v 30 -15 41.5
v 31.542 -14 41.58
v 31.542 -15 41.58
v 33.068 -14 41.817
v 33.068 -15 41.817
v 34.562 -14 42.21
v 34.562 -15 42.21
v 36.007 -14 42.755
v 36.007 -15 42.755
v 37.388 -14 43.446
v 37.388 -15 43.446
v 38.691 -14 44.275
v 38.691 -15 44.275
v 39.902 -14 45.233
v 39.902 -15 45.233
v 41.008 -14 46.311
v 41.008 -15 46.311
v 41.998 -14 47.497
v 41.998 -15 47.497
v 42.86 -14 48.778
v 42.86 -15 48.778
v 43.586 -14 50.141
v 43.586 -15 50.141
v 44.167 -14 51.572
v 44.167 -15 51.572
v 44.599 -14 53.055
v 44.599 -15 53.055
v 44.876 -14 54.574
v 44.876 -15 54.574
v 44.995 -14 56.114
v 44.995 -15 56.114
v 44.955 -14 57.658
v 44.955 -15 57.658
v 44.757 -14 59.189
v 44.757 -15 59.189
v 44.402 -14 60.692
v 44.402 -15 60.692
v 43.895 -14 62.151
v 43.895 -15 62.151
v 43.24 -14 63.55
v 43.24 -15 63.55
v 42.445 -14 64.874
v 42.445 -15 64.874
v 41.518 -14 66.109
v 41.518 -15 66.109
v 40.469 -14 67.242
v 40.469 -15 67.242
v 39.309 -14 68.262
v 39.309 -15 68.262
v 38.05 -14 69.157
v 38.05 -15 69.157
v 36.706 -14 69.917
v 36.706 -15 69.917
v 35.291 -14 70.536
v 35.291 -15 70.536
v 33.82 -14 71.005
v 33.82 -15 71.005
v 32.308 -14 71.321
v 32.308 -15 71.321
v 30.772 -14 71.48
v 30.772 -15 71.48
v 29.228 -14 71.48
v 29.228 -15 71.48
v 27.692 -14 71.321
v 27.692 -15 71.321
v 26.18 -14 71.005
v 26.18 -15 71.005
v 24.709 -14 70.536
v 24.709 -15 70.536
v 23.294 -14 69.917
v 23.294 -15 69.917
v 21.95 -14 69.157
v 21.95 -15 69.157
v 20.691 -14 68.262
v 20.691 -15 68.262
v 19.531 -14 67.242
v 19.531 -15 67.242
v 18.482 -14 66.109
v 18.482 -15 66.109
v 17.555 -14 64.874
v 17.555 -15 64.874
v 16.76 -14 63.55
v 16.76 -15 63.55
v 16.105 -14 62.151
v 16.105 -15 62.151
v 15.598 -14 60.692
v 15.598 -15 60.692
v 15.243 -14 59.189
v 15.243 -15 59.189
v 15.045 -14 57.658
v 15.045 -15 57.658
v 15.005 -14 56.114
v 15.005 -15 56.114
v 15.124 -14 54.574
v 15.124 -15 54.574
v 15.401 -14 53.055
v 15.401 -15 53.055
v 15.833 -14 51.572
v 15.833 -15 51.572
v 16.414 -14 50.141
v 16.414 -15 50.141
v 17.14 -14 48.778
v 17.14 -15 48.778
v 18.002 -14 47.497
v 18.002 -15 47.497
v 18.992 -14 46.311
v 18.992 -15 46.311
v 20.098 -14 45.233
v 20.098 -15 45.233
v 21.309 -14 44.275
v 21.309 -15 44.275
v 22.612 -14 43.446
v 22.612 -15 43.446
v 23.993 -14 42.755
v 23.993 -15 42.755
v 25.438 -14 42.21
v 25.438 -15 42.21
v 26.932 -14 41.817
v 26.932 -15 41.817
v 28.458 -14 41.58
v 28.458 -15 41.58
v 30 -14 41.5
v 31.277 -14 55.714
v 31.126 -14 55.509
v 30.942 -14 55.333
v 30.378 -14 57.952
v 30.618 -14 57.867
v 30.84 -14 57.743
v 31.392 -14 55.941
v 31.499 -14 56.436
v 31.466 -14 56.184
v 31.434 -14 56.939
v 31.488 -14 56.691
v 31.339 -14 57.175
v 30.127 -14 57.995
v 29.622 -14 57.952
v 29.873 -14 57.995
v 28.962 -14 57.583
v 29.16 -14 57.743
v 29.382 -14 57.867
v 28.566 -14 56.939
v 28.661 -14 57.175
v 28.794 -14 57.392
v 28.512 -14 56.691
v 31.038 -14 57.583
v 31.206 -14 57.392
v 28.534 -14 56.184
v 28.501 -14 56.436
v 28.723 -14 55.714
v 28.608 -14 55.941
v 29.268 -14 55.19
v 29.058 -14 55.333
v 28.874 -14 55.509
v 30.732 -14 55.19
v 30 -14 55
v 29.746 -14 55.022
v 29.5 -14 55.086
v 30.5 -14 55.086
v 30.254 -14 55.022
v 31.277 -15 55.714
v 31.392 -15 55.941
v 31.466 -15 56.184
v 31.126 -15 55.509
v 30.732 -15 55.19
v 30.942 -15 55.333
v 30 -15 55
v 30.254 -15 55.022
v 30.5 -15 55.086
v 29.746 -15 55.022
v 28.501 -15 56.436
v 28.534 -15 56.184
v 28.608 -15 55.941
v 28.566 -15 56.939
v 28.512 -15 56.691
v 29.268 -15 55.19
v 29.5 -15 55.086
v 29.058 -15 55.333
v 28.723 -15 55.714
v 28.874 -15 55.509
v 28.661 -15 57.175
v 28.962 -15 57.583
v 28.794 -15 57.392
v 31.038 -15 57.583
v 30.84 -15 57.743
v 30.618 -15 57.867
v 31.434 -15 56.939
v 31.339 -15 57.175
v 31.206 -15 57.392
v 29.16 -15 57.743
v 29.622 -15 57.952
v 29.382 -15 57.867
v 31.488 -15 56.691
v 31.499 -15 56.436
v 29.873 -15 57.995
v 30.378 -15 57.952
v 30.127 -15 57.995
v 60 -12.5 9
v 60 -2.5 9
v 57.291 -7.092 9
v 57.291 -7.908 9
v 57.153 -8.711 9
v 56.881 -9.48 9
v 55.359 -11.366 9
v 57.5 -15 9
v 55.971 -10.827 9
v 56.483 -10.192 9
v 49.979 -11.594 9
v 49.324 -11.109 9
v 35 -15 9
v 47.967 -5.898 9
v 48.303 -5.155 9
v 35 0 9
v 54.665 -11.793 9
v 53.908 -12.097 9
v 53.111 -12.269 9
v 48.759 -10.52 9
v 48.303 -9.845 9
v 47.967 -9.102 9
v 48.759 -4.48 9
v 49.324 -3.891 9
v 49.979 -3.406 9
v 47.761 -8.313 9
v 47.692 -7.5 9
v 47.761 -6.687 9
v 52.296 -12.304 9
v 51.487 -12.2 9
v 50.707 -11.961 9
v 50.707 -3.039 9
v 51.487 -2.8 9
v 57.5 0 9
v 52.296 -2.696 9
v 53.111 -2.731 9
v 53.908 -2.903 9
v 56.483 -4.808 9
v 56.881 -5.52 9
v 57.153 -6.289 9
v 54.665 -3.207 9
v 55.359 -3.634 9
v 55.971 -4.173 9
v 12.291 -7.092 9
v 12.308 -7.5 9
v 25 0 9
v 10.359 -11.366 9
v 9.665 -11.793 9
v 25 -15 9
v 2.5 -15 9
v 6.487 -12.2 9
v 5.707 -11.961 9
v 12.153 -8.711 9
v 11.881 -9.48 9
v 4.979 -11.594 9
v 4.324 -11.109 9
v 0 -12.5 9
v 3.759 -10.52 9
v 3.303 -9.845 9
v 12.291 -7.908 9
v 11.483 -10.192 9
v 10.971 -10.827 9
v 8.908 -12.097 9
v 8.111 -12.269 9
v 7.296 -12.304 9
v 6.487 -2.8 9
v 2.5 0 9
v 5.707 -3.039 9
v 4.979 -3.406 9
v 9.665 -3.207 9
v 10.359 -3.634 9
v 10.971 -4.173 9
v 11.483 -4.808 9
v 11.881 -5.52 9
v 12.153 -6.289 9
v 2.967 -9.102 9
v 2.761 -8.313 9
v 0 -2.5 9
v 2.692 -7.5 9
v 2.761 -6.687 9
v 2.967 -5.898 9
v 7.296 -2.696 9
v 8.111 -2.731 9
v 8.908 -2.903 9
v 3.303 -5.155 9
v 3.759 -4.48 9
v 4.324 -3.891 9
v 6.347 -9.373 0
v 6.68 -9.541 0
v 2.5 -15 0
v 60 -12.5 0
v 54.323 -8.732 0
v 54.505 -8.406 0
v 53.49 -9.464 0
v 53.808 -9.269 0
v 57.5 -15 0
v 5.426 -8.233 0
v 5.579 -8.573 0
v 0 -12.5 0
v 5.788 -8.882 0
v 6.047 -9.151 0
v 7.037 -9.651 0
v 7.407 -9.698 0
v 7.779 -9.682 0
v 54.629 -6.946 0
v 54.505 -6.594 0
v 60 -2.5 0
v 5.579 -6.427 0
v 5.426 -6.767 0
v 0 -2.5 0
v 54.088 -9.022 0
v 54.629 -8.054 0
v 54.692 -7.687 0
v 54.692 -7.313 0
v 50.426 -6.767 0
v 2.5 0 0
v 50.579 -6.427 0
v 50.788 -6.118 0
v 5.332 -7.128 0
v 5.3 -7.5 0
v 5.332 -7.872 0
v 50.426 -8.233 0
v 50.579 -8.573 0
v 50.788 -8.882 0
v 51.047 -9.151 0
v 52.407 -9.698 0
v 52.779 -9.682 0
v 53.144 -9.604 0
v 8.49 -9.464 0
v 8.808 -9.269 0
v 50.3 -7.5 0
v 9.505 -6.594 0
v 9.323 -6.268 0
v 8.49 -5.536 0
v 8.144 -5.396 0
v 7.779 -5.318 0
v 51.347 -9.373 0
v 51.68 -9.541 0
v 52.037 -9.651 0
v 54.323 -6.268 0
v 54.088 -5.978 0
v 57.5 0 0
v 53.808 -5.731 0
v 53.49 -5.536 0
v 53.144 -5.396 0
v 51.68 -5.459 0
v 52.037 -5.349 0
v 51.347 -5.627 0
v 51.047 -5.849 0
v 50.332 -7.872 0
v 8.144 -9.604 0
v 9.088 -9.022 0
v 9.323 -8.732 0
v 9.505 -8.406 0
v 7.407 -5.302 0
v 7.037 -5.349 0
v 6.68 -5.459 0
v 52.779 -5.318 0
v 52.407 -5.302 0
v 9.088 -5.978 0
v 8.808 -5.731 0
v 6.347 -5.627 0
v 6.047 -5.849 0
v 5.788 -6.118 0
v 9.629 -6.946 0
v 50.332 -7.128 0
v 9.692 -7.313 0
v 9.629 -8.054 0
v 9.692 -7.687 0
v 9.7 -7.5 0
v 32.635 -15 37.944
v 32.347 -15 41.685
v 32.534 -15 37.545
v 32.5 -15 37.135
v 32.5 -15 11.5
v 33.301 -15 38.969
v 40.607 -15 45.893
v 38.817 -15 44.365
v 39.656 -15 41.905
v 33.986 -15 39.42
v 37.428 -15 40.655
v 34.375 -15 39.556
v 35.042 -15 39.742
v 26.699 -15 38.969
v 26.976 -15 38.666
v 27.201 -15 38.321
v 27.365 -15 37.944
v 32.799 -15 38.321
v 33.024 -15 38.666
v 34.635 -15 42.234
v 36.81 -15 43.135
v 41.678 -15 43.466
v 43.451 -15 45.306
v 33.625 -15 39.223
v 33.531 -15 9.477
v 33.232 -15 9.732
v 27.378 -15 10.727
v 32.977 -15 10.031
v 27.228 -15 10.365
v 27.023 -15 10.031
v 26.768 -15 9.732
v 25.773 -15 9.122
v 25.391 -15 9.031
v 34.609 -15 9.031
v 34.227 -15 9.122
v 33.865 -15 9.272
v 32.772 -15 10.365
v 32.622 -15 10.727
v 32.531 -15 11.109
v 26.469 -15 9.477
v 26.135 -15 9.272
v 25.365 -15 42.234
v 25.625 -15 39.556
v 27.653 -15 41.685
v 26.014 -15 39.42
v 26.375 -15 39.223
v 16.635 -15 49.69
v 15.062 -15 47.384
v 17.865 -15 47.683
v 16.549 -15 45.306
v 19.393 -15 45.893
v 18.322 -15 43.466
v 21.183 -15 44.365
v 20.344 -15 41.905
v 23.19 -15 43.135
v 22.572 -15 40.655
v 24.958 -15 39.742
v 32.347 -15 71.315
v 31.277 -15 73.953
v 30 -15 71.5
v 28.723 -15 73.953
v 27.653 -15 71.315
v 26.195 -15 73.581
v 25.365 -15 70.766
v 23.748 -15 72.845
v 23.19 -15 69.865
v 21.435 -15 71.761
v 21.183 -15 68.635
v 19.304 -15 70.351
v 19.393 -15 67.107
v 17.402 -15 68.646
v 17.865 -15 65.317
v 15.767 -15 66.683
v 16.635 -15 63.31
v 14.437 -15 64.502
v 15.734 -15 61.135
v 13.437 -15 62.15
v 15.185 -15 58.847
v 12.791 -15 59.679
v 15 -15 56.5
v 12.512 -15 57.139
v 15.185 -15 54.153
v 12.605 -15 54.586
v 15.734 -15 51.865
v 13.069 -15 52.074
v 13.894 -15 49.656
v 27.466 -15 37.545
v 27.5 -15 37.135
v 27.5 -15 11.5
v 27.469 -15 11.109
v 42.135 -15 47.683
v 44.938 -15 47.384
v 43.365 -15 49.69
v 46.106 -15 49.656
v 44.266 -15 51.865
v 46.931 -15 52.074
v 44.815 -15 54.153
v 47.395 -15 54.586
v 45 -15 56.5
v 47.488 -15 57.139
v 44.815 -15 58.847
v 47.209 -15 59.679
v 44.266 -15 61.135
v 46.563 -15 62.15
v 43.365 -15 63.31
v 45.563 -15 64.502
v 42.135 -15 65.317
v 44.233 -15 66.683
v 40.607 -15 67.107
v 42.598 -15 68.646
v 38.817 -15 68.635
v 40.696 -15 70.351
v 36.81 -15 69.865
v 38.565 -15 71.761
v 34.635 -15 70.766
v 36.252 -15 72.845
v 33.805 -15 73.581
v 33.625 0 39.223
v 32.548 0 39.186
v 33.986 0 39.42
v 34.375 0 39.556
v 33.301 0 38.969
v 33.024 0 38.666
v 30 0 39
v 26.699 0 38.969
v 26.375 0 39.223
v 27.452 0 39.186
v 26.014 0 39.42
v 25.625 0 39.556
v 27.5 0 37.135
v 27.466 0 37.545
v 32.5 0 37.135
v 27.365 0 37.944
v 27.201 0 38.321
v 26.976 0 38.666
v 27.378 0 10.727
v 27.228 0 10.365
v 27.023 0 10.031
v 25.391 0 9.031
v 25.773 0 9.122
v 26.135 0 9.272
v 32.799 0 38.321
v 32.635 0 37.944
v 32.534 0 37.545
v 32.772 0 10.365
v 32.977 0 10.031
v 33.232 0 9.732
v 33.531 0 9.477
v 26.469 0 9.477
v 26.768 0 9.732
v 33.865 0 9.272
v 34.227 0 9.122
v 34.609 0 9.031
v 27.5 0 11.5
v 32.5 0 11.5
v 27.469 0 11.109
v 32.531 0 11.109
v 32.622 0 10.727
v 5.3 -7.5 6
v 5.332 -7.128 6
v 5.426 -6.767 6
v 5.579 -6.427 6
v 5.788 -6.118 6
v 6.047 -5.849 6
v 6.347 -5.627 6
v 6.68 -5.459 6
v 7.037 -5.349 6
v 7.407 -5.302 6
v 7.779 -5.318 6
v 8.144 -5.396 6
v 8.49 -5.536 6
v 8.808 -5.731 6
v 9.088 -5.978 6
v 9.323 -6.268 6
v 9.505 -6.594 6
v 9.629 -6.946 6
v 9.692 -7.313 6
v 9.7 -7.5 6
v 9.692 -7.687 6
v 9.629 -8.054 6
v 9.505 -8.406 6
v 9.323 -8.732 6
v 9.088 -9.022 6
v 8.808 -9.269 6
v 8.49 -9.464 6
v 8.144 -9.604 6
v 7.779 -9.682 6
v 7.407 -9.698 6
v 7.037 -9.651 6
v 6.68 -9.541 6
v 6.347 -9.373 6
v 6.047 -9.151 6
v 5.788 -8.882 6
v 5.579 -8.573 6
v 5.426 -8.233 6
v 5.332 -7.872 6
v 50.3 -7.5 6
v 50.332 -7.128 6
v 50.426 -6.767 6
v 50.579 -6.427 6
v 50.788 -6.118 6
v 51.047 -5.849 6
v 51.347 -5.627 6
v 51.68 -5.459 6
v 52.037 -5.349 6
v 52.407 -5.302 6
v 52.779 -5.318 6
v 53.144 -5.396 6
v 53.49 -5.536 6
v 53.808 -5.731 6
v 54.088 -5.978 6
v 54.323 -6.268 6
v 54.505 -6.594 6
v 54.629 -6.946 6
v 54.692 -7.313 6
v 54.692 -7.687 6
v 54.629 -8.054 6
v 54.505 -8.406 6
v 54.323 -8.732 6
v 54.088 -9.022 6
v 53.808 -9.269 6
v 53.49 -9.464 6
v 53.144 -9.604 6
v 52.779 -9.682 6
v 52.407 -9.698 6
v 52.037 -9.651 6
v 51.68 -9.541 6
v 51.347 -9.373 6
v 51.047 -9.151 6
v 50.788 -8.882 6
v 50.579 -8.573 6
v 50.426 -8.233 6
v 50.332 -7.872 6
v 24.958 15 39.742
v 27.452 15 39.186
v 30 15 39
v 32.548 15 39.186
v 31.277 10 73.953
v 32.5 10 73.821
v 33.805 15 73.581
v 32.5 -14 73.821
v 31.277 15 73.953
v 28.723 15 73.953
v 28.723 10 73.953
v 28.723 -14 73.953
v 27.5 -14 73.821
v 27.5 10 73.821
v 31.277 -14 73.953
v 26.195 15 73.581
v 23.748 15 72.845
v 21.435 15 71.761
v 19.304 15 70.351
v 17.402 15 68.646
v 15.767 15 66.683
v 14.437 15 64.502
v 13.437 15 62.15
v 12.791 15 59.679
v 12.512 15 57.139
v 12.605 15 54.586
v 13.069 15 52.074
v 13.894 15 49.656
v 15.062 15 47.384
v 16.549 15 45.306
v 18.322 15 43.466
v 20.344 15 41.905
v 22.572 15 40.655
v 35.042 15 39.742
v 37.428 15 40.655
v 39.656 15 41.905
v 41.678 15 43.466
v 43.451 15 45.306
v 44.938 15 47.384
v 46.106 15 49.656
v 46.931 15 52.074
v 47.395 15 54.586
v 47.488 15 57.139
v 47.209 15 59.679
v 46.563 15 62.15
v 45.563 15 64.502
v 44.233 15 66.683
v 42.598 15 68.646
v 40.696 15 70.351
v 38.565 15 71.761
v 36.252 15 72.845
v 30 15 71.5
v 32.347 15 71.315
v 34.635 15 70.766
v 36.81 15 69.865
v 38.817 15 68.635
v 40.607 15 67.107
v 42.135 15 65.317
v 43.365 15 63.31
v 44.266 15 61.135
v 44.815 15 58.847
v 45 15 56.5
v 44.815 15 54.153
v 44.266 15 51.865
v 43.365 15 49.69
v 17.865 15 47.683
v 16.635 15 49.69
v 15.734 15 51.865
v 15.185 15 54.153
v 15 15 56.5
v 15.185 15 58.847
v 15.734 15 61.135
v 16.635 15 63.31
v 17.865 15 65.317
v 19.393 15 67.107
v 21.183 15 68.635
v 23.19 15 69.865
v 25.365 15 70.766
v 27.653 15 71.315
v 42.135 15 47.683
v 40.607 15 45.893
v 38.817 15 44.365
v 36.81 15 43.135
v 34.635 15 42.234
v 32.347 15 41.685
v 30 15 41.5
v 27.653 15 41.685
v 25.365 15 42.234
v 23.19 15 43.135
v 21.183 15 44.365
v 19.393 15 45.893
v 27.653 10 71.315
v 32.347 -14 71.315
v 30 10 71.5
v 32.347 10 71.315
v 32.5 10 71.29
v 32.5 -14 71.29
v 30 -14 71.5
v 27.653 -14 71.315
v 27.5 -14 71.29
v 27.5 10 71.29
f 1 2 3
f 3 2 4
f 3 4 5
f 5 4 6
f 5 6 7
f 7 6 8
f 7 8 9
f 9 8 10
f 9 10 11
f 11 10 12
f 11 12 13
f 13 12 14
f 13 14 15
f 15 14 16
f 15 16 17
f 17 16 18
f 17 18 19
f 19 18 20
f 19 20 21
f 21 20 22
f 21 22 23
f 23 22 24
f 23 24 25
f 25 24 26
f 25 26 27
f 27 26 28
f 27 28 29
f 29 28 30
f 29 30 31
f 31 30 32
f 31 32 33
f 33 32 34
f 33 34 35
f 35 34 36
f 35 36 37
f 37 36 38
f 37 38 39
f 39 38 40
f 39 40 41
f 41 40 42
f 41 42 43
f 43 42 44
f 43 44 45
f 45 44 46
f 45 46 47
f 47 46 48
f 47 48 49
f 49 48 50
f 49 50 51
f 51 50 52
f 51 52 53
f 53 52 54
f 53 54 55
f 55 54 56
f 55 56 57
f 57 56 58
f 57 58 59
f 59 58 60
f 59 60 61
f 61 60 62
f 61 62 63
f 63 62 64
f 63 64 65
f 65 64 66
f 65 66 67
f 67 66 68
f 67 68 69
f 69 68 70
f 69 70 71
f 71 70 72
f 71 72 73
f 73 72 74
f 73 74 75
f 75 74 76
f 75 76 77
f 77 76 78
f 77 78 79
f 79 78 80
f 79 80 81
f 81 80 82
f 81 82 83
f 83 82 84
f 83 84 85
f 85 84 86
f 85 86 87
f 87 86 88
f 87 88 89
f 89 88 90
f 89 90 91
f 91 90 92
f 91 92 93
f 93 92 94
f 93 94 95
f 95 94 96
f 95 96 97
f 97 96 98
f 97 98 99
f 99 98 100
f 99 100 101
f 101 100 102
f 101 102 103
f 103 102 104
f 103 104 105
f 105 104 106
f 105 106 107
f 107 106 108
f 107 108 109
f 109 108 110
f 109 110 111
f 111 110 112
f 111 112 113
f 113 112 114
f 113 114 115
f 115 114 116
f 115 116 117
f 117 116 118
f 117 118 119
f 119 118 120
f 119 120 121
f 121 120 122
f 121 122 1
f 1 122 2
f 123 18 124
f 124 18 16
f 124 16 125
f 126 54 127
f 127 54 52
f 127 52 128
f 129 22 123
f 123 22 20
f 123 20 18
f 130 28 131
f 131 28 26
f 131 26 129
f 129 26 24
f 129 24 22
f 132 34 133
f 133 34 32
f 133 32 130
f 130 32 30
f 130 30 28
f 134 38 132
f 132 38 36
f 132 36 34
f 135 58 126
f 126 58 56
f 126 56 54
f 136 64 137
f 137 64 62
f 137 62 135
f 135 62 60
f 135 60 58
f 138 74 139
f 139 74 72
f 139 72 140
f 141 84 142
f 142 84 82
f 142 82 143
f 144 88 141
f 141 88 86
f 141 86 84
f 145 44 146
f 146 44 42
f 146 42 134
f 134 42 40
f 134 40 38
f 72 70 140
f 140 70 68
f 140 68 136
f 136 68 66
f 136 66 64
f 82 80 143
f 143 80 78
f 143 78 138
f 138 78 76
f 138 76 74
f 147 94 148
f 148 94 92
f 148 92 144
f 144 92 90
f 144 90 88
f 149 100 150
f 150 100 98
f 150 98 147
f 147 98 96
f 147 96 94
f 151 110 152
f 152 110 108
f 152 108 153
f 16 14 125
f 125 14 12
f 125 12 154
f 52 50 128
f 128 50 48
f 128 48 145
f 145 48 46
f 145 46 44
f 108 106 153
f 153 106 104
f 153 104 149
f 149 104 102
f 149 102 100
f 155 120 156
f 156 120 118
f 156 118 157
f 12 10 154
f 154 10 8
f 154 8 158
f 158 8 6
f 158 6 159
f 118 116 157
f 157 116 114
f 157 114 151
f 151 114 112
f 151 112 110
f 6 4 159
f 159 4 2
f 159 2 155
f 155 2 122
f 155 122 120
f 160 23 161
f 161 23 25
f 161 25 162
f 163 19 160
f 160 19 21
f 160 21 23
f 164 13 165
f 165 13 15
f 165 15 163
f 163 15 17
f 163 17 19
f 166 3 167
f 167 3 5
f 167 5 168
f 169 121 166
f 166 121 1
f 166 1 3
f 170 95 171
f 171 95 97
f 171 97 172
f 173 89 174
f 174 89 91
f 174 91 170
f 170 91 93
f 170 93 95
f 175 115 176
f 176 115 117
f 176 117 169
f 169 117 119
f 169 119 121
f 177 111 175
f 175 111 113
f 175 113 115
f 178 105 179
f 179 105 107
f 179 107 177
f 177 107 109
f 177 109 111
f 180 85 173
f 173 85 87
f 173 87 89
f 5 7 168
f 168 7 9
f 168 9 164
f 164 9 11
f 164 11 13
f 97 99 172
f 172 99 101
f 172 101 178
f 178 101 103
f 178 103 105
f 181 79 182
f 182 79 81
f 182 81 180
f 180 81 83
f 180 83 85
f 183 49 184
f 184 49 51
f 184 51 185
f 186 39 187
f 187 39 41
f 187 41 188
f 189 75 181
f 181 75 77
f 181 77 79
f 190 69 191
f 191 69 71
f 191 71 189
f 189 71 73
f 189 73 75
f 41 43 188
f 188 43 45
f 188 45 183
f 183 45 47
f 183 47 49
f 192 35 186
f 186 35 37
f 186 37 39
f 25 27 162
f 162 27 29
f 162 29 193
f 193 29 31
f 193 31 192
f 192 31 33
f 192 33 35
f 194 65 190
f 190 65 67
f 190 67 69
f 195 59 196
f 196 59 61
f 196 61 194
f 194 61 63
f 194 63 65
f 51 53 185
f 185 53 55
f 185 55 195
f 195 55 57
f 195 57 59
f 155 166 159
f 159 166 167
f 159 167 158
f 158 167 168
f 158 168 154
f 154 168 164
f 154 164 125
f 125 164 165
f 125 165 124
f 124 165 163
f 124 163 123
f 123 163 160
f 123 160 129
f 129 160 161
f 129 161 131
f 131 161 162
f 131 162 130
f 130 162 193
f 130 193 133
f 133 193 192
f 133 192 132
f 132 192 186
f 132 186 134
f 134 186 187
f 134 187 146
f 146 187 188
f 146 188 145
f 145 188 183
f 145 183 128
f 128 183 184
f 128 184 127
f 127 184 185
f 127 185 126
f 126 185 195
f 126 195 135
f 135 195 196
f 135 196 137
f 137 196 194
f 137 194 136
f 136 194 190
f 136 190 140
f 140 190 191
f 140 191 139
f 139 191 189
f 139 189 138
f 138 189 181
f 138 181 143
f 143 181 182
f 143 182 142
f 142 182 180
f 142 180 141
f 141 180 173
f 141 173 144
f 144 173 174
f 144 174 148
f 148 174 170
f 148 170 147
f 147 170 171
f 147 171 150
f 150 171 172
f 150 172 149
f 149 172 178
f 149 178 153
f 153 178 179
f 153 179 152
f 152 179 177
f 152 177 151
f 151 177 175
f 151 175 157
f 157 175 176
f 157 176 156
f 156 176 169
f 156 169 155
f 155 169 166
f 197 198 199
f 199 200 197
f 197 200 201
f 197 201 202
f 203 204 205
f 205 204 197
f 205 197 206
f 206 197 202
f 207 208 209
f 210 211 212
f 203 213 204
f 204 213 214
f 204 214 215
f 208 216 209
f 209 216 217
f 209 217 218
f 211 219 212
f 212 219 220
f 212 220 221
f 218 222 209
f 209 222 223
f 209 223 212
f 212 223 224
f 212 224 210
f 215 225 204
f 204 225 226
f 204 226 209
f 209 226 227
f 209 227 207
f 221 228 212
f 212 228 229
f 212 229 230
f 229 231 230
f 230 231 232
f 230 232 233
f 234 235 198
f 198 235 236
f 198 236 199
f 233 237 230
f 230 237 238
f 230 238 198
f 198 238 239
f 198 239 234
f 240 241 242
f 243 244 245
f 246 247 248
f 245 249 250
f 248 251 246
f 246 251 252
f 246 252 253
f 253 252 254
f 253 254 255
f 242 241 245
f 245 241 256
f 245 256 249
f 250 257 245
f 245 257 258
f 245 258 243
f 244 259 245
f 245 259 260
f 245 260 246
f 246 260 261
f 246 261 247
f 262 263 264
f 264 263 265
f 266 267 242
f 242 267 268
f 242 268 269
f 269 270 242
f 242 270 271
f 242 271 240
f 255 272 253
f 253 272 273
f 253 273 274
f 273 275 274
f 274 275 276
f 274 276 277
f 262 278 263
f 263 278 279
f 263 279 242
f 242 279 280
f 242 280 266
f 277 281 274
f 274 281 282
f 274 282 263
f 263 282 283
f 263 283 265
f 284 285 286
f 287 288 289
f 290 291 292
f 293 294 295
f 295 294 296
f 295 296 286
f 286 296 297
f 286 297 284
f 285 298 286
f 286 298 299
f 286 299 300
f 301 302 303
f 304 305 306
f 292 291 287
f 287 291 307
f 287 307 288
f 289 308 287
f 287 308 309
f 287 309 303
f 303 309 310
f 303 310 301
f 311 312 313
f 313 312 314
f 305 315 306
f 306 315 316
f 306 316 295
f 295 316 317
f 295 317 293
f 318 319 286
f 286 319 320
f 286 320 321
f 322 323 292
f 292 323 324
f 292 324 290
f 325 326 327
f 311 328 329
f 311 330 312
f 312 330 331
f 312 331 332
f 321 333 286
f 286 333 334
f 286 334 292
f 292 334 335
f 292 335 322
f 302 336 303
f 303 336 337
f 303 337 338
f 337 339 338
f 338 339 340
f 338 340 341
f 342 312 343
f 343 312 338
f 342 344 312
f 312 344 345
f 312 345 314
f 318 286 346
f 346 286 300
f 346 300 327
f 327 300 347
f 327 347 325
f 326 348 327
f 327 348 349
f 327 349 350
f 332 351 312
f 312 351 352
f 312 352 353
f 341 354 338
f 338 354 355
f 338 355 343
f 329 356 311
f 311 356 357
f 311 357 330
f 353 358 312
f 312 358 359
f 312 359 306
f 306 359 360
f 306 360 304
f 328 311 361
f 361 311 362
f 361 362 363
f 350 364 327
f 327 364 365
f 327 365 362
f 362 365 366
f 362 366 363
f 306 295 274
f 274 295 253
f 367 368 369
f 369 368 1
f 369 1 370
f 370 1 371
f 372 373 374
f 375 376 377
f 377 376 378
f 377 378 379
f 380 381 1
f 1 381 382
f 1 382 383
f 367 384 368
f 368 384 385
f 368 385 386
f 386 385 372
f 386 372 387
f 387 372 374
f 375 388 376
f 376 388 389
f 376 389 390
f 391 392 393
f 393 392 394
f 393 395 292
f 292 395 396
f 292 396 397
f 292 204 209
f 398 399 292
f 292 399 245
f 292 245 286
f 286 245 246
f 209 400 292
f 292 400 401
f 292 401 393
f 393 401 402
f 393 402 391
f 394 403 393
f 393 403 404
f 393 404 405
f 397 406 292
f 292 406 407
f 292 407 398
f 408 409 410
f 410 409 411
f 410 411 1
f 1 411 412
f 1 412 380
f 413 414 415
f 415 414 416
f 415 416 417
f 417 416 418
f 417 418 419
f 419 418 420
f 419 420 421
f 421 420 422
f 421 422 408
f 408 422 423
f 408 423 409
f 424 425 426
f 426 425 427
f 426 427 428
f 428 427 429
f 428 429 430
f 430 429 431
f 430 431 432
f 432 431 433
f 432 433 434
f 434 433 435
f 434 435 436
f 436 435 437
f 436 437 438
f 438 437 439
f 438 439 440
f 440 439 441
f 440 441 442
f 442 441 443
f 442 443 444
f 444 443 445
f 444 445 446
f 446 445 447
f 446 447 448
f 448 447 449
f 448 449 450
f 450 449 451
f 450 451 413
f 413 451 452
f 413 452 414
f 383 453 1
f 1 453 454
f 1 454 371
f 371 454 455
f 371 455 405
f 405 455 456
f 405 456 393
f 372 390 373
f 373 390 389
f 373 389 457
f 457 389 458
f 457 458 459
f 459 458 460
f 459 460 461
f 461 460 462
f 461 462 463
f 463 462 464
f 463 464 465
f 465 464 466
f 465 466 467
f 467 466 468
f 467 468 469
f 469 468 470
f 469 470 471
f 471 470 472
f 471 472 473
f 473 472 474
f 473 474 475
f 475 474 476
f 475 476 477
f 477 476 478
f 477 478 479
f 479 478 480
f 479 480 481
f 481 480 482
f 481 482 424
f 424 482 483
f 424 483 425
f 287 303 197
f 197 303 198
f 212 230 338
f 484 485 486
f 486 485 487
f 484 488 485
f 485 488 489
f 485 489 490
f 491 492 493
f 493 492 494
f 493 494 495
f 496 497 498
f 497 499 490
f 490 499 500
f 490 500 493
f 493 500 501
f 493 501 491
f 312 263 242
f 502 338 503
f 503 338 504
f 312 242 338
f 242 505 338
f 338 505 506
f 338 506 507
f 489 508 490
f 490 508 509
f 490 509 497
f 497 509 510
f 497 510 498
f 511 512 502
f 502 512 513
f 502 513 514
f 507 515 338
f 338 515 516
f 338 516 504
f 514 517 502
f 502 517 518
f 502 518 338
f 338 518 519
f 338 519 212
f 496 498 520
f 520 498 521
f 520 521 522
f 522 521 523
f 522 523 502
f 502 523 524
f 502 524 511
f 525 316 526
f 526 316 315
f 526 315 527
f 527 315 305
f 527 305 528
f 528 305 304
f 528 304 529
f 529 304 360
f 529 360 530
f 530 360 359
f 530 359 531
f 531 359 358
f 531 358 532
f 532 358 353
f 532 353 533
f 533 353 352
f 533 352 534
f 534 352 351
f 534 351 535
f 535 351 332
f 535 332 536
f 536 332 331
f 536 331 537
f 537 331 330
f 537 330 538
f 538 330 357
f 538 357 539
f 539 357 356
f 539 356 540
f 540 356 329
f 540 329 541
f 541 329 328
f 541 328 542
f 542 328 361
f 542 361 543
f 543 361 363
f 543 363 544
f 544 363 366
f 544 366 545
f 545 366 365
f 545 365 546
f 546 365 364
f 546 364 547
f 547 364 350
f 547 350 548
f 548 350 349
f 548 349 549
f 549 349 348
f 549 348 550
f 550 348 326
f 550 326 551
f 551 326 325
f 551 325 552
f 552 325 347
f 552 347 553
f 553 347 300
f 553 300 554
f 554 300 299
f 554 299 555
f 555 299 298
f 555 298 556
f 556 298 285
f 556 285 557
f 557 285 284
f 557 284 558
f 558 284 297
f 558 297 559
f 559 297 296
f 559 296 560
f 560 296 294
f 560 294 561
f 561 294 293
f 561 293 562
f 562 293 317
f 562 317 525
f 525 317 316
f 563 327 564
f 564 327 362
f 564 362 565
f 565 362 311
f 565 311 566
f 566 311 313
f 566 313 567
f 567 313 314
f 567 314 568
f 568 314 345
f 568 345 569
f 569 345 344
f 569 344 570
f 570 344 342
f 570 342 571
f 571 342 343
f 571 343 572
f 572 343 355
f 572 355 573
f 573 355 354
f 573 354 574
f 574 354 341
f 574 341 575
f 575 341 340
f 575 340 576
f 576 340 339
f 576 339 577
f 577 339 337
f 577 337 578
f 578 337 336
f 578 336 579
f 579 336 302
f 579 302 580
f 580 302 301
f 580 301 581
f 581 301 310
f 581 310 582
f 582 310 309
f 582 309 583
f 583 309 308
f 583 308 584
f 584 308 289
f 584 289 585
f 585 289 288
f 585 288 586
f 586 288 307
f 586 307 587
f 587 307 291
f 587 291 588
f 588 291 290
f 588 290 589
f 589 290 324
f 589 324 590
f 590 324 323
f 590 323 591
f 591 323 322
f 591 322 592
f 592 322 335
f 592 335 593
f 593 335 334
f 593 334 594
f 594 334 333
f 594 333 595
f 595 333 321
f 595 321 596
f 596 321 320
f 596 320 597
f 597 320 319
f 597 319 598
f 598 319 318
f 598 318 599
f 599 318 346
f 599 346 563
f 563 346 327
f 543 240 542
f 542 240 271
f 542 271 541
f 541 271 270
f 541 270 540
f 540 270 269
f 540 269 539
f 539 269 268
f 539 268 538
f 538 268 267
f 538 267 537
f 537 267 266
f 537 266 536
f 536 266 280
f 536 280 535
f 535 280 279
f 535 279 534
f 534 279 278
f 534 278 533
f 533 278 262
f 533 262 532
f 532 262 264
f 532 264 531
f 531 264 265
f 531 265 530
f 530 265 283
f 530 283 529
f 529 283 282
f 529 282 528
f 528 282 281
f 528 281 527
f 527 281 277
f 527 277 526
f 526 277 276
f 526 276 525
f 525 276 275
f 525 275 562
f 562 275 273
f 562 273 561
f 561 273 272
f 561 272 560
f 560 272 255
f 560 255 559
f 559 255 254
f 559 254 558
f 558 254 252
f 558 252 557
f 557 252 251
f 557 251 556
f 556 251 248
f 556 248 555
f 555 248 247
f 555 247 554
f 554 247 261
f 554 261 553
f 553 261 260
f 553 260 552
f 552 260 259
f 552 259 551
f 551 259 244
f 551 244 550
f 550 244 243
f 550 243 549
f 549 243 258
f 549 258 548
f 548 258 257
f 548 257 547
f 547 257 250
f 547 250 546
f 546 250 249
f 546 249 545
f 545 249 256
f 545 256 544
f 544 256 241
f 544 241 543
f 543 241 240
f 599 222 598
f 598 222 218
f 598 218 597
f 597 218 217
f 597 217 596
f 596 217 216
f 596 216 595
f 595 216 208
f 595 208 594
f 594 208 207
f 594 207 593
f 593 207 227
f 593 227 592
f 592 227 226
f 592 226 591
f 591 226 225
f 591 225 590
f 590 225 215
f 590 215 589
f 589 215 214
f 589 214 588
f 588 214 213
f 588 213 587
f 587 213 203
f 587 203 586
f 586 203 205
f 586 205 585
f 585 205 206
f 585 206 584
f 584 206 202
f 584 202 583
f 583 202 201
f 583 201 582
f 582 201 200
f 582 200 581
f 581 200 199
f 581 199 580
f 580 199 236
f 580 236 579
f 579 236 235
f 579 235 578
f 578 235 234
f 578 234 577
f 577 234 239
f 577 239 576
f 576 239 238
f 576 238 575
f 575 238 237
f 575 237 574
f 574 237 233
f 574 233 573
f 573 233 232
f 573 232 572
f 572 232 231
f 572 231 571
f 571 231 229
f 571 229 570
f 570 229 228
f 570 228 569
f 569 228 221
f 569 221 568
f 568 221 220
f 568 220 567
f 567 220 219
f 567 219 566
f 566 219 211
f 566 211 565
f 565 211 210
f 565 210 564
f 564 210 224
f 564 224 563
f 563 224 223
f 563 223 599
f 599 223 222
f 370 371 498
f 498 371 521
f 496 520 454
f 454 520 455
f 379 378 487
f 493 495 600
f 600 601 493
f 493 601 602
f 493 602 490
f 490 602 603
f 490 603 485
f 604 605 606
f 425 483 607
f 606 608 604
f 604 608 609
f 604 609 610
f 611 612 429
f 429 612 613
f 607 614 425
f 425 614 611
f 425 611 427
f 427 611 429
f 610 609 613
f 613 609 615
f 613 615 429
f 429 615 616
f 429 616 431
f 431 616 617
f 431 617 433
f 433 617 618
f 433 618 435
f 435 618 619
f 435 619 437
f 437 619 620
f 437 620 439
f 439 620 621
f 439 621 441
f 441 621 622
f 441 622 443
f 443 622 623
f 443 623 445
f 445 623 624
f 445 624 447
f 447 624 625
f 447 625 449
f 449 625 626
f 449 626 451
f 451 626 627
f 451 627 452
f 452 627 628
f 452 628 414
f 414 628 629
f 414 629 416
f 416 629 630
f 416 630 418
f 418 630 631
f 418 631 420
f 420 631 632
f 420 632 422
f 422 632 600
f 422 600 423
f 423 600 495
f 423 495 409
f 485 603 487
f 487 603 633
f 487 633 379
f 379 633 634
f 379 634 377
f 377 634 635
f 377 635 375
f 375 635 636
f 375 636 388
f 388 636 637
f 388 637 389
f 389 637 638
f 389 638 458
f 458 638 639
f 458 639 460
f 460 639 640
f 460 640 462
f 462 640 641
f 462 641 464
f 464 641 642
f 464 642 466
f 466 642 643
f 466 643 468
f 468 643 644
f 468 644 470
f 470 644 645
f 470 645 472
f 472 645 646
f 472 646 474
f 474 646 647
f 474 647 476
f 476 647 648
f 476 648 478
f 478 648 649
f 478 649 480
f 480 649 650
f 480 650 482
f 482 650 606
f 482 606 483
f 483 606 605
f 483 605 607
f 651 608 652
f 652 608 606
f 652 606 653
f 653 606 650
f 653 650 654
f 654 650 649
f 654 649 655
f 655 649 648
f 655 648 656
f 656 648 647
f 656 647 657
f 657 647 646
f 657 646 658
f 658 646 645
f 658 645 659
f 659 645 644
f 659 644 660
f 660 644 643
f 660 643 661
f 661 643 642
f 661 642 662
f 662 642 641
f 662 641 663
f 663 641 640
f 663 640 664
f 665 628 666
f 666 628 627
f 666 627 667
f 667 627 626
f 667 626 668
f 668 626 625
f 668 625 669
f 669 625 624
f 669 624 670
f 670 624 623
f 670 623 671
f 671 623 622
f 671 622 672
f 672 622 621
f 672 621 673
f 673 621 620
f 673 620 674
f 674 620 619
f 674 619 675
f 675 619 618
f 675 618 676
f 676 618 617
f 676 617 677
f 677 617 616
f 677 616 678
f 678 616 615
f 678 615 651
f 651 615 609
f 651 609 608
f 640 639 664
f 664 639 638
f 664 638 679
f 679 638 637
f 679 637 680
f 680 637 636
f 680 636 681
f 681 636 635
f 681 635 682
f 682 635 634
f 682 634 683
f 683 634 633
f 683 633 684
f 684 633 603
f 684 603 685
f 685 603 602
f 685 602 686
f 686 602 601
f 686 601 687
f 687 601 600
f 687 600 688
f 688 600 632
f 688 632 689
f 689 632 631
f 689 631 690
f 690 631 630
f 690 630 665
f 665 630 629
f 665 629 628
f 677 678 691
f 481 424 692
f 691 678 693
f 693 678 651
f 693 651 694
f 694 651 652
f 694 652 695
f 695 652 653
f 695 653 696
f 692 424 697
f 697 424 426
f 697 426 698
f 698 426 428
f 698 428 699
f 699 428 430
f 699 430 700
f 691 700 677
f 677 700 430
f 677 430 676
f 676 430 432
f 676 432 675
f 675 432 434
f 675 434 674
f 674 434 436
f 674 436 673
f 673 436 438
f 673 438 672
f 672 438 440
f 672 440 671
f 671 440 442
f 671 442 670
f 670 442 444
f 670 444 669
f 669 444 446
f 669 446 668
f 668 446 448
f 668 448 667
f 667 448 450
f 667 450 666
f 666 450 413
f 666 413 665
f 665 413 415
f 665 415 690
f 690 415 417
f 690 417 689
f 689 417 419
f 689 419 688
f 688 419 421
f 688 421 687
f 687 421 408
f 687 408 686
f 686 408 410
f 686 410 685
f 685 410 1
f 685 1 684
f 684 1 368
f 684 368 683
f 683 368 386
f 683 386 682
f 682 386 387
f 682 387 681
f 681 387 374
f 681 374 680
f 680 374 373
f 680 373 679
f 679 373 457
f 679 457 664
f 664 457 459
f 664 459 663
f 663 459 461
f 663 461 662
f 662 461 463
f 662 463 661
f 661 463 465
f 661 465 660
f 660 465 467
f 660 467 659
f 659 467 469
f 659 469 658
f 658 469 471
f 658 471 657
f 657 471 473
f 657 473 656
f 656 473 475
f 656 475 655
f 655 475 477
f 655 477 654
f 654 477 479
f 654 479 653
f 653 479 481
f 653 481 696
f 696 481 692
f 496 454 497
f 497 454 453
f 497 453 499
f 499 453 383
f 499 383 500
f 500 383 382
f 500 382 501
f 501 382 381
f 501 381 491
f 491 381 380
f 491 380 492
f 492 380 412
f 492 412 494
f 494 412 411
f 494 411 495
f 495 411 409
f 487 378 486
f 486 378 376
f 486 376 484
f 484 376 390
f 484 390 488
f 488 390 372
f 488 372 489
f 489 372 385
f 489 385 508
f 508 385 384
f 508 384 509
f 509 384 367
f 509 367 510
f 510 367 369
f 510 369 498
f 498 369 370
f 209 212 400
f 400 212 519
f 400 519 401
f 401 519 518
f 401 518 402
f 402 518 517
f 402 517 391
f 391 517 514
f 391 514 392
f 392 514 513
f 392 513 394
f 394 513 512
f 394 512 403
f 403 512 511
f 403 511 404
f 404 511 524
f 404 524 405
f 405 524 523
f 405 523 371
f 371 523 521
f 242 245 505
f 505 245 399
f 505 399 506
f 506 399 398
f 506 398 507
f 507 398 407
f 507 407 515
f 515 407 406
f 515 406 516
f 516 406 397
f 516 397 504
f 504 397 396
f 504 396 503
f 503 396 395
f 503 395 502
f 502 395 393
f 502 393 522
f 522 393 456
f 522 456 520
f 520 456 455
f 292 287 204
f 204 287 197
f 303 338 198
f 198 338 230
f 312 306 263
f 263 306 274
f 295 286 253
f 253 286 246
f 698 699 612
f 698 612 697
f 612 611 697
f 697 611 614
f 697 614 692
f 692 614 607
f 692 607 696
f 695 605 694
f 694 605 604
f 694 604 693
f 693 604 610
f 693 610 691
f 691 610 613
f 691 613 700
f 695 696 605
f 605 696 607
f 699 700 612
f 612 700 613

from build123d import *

# Parameters (mm, degrees)
SKETCH1_W           = 60
SKETCH1_H           = 15
SKETCH1_R           = 2.2
BOSS_EXTRUDE1_DEPTH = 9
SKETCH4_W           = 5
SKETCH4_H           = 15
BOSS_EXTRUDE2_DEPTH = 51
SKETCH5_R           = 17.5
BOSS_EXTRUDE3_DEPTH = 30
SKETCH6_R           = 15
CUT_EXTRUDE1_DEPTH  = 100.879927913
FILLET1_R           = 2.5
CHAMFER1_SIZE       = 2.5
SKETCH7_R           = 15
SKETCH7_R_2         = 1.5
BOSS_EXTRUDE4_DEPTH = 1
SKETCH8_W           = 5
SKETCH8_H           = 5.5
CUT_EXTRUDE2_DEPTH  = 24


with BuildPart() as part:
    # Sketch1 → Boss-Extrude1 (new body)
    with BuildSketch(Plane.XY):
        with Locations((30, -7.5)):
            Rectangle(SKETCH1_W, SKETCH1_H)
        with Locations((7.5, -7.5)):
            Circle(SKETCH1_R, mode=Mode.SUBTRACT)
        with Locations(Location((52.5, -7.5, 0), (0, 0, 180))):
            Circle(SKETCH1_R, mode=Mode.SUBTRACT)
    extrude(amount=BOSS_EXTRUDE1_DEPTH)

    # Sketch3 → Cut-Revolve1 (revolve, cut)
    with BuildSketch(Plane(origin=(7.5, 0, 0), x_dir=(0, 0, -1), z_dir=(1, 0, 0)), mode=Mode.PRIVATE) as cut_revolve1_sk:
        Polygon((-9, -7.5), (-6, -7.5), (-6, -9.7), (-9, -12.307860213), align=None)
    cut_revolve1 = revolve(cut_revolve1_sk.sketch.rotate(Axis((7.5, -7.5, 9), (0, 0, -1)), 270), axis=Axis((7.5, -7.5, 9), (0, 0, -1)), mode=Mode.SUBTRACT)

    # Mirror1: Cut-Revolve1 across plane
    add(cut_revolve1.mirror(Plane(origin=(30, 0, 0), x_dir=(0, 0, 1), z_dir=(1, 0, 0))), mode=Mode.SUBTRACT)

    # Sketch4 → Boss-Extrude2 (add)
    with BuildSketch(Plane.XY.offset(9)):
        with Locations((30, -7.5)):
            Rectangle(SKETCH4_W, SKETCH4_H)
    extrude(amount=BOSS_EXTRUDE2_DEPTH)

    # Sketch5 → Boss-Extrude3 (add)
    with BuildSketch(Plane.XZ.offset(15)):
        with Locations(Location((30, 56.5, 0), (0, 0, 270))):
            Circle(SKETCH5_R)
    extrude(amount=-BOSS_EXTRUDE3_DEPTH)

    # Sketch6 → Cut-Extrude1 (cut, through all)
    with BuildSketch(Plane.XZ.offset(15)):
        with Locations(Location((30, 56.5, 0), (0, 0, 270))):
            Circle(SKETCH6_R)
    extrude(amount=-CUT_EXTRUDE1_DEPTH, mode=Mode.SUBTRACT)

    # Fillet1
    fillet1_edges = [part.edges().sort_by_distance(p)[0] for p in [
        (32.5, -7.5, 9),
        (27.5, -7.5, 9),
        (27.5, -7.5, 39.179491924),
        (32.5, -7.5, 39.179491924),
    ]]
    fillet(fillet1_edges, radius=FILLET1_R)

    # Chamfer1
    chamfer1_edges = [part.edges().sort_by_distance(p)[0] for p in [
        (0, 0, 4.5),
        (60, 0, 4.5),
        (60, -15, 4.5),
        (0, -15, 4.5),
    ]]
    chamfer(chamfer1_edges, length=CHAMFER1_SIZE)

    # Sketch8 → Cut-Extrude2 (cut)
    with BuildSketch(Plane.XZ.offset(14)):
        with Locations((30, 74.040199458)):
            Rectangle(SKETCH8_W, SKETCH8_H)
    extrude(amount=-CUT_EXTRUDE2_DEPTH, mode=Mode.SUBTRACT)


with BuildPart() as body_2:
    # Sketch7 → Boss-Extrude4 (new body)
    with BuildSketch(Plane.XZ.offset(15)):
        with Locations(Location((30, 56.5, 0), (0, 0, 270))):
            Circle(SKETCH7_R)
        with Locations(Location((30, 56.5, 0), (0, 0, 270))):
            Circle(SKETCH7_R_2, mode=Mode.SUBTRACT)
    extrude(amount=-BOSS_EXTRUDE4_DEPTH)


solid = Compound([part.part, body_2.part])
